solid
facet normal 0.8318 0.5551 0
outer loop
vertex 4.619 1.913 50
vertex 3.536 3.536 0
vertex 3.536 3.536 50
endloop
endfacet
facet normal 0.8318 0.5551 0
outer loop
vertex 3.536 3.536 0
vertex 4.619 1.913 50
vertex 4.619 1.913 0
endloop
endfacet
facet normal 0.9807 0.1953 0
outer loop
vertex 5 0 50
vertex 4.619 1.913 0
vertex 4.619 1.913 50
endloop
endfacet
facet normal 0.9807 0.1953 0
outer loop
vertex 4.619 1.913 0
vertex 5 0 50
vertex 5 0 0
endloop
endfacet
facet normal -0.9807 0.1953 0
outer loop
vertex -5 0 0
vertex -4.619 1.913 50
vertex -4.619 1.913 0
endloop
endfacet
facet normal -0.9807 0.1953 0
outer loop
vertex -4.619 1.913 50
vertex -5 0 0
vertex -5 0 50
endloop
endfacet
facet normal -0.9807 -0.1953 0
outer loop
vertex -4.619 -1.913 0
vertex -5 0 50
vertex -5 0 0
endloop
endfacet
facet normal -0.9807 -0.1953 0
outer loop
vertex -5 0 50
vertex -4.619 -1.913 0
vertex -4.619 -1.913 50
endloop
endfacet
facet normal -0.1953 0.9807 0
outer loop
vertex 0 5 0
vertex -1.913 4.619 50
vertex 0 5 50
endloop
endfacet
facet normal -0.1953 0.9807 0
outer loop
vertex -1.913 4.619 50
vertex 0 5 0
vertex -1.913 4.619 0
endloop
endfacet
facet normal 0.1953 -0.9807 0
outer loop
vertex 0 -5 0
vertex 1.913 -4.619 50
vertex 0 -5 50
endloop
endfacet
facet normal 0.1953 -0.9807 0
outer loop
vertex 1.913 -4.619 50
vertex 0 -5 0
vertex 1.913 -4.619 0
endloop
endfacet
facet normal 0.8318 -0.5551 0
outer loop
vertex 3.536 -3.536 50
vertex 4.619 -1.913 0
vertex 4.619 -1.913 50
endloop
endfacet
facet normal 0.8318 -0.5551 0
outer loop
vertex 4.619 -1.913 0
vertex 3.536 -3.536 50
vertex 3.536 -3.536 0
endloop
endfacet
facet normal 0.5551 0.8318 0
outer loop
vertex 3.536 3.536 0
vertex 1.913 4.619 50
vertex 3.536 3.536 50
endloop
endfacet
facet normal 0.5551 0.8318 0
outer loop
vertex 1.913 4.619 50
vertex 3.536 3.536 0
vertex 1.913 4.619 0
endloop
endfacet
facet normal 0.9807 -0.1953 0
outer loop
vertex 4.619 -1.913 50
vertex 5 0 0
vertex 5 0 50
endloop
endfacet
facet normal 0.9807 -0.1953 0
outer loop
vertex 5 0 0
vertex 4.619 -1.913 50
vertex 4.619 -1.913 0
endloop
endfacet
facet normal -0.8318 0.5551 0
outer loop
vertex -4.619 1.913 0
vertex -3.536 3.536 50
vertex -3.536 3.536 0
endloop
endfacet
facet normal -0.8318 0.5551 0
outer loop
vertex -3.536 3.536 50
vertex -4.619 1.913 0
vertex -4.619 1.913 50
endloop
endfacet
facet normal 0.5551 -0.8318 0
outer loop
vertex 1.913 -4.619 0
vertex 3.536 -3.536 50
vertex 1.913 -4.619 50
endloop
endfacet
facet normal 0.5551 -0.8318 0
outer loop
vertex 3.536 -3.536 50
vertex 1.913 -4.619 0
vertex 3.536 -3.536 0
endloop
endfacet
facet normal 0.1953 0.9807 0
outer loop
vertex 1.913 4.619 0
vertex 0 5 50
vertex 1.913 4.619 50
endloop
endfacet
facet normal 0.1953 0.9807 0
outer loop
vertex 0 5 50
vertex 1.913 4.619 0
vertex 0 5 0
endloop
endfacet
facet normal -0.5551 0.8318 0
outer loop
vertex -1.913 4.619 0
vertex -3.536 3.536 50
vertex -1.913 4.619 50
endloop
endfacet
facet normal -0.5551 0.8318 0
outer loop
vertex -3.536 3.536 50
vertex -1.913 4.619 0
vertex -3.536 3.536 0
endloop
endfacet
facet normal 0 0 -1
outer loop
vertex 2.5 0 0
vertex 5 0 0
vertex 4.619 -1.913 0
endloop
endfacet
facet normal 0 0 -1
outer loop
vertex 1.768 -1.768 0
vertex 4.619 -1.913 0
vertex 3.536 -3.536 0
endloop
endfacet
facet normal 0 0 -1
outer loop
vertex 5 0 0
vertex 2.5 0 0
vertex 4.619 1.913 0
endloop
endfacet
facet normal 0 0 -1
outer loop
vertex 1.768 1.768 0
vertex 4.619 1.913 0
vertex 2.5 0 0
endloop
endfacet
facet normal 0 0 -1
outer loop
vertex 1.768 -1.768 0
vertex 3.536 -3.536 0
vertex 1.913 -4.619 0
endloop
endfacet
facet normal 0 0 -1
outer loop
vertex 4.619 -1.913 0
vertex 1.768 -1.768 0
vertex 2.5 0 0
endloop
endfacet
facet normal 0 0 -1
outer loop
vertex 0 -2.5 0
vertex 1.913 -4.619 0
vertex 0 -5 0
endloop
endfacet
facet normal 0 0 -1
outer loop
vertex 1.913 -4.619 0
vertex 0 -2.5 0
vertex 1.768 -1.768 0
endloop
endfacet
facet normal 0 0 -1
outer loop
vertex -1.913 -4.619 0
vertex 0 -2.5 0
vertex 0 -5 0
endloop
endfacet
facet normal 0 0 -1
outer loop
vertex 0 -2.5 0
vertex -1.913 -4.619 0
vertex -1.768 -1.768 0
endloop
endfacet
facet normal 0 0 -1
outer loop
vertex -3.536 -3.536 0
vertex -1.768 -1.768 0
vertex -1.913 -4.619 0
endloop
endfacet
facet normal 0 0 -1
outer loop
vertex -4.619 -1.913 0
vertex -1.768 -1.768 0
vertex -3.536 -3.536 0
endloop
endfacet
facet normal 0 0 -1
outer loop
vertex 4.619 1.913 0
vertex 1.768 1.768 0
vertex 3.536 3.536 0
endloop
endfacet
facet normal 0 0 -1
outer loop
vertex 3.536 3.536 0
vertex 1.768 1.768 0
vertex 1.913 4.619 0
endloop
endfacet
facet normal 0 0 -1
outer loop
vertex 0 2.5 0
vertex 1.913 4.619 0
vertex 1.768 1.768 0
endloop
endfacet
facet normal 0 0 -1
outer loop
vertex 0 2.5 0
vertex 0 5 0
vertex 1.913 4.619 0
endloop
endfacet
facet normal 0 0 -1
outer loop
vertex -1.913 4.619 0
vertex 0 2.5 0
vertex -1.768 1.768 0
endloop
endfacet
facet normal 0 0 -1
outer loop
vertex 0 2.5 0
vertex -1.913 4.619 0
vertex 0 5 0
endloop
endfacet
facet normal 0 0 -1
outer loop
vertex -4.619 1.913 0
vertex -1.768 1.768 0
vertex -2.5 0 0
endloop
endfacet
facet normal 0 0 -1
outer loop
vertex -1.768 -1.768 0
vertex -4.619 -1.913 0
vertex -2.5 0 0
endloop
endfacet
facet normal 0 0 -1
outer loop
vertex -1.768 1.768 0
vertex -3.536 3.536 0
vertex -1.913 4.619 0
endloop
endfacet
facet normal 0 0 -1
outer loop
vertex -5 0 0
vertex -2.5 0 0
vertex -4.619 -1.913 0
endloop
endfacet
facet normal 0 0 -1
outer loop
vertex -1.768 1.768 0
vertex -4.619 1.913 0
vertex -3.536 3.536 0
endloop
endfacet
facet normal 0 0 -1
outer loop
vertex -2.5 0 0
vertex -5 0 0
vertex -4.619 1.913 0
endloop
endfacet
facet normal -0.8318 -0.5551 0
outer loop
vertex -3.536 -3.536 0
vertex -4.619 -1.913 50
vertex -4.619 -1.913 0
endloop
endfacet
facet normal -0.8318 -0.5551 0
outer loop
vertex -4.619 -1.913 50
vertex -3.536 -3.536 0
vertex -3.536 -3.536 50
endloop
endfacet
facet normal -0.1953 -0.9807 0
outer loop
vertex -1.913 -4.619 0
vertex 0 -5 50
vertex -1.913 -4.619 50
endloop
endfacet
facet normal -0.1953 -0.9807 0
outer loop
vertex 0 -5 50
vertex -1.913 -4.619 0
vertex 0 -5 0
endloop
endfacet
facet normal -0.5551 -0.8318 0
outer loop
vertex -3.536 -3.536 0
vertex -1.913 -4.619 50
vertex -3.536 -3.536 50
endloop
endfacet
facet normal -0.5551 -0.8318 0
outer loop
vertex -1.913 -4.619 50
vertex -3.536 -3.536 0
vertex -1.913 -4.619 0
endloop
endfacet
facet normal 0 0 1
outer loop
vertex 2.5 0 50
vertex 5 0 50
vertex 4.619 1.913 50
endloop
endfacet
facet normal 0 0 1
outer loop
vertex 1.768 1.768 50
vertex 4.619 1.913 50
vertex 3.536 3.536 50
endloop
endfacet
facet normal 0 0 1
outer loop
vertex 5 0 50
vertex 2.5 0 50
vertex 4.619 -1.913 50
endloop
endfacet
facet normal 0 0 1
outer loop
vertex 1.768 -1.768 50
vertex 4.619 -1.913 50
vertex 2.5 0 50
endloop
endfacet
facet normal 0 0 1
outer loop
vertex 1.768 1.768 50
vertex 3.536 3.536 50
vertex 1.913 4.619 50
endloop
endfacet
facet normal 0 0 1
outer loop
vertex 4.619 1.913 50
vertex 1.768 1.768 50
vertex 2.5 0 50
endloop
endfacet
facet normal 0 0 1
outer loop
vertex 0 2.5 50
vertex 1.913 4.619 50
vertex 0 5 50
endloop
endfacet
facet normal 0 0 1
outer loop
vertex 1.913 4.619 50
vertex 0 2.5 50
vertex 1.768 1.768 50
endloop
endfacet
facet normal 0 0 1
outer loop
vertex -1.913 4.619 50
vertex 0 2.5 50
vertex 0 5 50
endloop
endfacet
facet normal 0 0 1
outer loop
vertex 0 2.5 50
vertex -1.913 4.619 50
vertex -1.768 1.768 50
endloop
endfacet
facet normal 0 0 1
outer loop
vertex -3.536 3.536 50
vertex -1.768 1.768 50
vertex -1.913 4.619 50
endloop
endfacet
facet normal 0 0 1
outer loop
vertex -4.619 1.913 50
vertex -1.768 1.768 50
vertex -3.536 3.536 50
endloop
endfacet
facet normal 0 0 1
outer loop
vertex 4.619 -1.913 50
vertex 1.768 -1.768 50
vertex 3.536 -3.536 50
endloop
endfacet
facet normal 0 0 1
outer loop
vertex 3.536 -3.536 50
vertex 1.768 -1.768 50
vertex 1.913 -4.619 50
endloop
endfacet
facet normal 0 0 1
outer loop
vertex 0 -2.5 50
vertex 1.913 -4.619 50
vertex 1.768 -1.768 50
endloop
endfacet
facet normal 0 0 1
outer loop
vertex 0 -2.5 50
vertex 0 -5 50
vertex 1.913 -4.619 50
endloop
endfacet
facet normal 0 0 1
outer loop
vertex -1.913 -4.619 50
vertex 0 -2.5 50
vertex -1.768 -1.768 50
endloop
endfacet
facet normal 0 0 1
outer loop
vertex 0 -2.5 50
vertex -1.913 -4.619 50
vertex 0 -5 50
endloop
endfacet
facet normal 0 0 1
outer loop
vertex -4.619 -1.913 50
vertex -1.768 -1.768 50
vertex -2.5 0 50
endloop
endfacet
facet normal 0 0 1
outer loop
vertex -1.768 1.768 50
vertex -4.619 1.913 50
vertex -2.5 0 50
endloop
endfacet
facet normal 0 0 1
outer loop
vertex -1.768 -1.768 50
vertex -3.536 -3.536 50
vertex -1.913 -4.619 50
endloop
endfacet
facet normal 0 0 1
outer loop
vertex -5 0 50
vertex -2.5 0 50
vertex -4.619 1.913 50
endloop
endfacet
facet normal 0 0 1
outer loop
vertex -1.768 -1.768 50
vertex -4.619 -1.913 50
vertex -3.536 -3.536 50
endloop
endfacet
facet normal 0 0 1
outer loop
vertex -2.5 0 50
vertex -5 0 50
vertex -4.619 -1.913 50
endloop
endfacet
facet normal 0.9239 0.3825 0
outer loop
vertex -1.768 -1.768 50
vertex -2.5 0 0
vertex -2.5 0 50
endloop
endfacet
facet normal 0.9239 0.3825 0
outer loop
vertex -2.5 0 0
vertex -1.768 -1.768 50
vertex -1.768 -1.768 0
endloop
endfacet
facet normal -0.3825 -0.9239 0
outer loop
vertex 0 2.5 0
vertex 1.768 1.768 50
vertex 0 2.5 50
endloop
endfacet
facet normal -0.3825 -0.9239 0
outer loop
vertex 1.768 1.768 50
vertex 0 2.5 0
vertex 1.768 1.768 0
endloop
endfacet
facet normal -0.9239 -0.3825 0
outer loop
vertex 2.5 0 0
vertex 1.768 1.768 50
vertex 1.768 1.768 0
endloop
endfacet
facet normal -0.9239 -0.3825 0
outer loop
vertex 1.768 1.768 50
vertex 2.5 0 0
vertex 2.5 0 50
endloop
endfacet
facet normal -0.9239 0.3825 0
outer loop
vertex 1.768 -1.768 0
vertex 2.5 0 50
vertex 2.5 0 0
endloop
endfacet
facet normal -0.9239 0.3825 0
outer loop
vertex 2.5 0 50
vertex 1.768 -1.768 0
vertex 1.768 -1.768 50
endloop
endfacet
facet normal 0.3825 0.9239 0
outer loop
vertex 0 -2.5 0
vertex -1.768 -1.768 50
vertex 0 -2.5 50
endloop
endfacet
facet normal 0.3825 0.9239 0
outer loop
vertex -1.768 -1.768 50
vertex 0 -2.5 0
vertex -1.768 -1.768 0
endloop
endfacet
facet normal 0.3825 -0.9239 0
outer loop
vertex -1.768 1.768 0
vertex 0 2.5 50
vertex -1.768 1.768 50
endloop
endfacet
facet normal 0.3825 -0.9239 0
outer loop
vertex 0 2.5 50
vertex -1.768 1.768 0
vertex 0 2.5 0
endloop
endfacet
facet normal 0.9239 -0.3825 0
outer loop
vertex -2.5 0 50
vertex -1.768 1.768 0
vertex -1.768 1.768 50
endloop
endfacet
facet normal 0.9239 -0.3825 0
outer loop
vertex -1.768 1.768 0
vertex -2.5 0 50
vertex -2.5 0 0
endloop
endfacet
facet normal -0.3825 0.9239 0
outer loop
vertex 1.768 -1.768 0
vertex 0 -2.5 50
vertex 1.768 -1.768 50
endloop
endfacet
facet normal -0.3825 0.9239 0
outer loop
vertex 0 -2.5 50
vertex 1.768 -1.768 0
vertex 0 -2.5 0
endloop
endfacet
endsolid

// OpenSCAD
difference(){
cylinder(d=10,h=50);
translate([0,0,-1])
cylinder(d=5,h=52);
}
